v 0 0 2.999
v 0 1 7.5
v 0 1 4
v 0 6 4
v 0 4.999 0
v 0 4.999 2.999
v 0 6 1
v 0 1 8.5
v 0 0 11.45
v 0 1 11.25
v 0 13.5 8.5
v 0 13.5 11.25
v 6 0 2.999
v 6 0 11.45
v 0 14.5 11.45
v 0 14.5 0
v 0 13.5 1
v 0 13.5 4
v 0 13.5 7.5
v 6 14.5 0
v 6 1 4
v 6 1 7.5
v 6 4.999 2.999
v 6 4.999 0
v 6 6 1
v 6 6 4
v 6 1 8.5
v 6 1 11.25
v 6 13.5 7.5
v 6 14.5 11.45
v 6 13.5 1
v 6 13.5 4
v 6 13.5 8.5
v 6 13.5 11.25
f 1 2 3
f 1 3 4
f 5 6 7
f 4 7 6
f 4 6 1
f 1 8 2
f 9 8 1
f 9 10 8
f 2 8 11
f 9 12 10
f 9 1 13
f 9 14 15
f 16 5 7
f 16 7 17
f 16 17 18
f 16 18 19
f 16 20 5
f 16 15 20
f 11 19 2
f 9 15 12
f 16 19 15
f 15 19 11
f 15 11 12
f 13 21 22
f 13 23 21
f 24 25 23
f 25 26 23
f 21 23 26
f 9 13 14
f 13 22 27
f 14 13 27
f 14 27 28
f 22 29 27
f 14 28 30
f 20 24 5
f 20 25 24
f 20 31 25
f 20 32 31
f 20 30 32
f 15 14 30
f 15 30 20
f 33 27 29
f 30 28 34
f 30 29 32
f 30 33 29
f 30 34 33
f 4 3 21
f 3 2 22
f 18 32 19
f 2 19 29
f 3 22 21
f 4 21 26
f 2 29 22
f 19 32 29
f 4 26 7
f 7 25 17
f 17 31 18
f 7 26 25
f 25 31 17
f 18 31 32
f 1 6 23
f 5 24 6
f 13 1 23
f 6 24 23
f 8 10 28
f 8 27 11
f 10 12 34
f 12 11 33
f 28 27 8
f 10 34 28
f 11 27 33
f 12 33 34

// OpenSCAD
// Copyright (c) 2026 Chris Lee and contributors.
// Licensed under the MIT license. See LICENSE file in the project root for details.

// This is a support for a 0.91" OLED screen above a ESP32-WROOM module on a PCB.
// The support slides onto the end of the screen.

z_below = 8.5;      // Space between the OLED screen at the top of the ESP32 module.
oled_width = 12.5;  // Width (screen height) of the OLED screen, including extra space.
board_z = 2.75;     // Space for the height of the OLED screen.
support_width = 6;  // Width of the support (along the width of the OLED screen.
top_wall = 0.2;     // Thickness of the top of the support, above the screen (thin).
wall = 1;           // Thickness of support walls that are not above the top of the OLED screen.

usb_depth = 5;
usb_height = 3;

epsilon = 1e-3;

module OLEDSupport() {
  total_height = z_below + board_z + top_wall;
  difference() {
    // The body of the support.
    cube([support_width, oled_width + 2*wall, total_height]);
    // The space below the board.
    translate([-1, 1, wall+usb_height]) {
      cube([support_width + 2, oled_width, z_below - 2 * wall - usb_height]);
    }
    translate([-1, 1+usb_depth, wall]) {
      cube([support_width + 2, oled_width-usb_depth, usb_height + epsilon]);
    }
    // usb hole
    translate([-1, -epsilon, -epsilon]) {
      cube([support_width + 2, usb_depth, usb_height]);
    }
    // A space for the screen to slide into.
    translate([-1, 1, z_below]) {
      cube([support_width + 2, oled_width, board_z]);
    }
  }
}

OLEDSupport();
